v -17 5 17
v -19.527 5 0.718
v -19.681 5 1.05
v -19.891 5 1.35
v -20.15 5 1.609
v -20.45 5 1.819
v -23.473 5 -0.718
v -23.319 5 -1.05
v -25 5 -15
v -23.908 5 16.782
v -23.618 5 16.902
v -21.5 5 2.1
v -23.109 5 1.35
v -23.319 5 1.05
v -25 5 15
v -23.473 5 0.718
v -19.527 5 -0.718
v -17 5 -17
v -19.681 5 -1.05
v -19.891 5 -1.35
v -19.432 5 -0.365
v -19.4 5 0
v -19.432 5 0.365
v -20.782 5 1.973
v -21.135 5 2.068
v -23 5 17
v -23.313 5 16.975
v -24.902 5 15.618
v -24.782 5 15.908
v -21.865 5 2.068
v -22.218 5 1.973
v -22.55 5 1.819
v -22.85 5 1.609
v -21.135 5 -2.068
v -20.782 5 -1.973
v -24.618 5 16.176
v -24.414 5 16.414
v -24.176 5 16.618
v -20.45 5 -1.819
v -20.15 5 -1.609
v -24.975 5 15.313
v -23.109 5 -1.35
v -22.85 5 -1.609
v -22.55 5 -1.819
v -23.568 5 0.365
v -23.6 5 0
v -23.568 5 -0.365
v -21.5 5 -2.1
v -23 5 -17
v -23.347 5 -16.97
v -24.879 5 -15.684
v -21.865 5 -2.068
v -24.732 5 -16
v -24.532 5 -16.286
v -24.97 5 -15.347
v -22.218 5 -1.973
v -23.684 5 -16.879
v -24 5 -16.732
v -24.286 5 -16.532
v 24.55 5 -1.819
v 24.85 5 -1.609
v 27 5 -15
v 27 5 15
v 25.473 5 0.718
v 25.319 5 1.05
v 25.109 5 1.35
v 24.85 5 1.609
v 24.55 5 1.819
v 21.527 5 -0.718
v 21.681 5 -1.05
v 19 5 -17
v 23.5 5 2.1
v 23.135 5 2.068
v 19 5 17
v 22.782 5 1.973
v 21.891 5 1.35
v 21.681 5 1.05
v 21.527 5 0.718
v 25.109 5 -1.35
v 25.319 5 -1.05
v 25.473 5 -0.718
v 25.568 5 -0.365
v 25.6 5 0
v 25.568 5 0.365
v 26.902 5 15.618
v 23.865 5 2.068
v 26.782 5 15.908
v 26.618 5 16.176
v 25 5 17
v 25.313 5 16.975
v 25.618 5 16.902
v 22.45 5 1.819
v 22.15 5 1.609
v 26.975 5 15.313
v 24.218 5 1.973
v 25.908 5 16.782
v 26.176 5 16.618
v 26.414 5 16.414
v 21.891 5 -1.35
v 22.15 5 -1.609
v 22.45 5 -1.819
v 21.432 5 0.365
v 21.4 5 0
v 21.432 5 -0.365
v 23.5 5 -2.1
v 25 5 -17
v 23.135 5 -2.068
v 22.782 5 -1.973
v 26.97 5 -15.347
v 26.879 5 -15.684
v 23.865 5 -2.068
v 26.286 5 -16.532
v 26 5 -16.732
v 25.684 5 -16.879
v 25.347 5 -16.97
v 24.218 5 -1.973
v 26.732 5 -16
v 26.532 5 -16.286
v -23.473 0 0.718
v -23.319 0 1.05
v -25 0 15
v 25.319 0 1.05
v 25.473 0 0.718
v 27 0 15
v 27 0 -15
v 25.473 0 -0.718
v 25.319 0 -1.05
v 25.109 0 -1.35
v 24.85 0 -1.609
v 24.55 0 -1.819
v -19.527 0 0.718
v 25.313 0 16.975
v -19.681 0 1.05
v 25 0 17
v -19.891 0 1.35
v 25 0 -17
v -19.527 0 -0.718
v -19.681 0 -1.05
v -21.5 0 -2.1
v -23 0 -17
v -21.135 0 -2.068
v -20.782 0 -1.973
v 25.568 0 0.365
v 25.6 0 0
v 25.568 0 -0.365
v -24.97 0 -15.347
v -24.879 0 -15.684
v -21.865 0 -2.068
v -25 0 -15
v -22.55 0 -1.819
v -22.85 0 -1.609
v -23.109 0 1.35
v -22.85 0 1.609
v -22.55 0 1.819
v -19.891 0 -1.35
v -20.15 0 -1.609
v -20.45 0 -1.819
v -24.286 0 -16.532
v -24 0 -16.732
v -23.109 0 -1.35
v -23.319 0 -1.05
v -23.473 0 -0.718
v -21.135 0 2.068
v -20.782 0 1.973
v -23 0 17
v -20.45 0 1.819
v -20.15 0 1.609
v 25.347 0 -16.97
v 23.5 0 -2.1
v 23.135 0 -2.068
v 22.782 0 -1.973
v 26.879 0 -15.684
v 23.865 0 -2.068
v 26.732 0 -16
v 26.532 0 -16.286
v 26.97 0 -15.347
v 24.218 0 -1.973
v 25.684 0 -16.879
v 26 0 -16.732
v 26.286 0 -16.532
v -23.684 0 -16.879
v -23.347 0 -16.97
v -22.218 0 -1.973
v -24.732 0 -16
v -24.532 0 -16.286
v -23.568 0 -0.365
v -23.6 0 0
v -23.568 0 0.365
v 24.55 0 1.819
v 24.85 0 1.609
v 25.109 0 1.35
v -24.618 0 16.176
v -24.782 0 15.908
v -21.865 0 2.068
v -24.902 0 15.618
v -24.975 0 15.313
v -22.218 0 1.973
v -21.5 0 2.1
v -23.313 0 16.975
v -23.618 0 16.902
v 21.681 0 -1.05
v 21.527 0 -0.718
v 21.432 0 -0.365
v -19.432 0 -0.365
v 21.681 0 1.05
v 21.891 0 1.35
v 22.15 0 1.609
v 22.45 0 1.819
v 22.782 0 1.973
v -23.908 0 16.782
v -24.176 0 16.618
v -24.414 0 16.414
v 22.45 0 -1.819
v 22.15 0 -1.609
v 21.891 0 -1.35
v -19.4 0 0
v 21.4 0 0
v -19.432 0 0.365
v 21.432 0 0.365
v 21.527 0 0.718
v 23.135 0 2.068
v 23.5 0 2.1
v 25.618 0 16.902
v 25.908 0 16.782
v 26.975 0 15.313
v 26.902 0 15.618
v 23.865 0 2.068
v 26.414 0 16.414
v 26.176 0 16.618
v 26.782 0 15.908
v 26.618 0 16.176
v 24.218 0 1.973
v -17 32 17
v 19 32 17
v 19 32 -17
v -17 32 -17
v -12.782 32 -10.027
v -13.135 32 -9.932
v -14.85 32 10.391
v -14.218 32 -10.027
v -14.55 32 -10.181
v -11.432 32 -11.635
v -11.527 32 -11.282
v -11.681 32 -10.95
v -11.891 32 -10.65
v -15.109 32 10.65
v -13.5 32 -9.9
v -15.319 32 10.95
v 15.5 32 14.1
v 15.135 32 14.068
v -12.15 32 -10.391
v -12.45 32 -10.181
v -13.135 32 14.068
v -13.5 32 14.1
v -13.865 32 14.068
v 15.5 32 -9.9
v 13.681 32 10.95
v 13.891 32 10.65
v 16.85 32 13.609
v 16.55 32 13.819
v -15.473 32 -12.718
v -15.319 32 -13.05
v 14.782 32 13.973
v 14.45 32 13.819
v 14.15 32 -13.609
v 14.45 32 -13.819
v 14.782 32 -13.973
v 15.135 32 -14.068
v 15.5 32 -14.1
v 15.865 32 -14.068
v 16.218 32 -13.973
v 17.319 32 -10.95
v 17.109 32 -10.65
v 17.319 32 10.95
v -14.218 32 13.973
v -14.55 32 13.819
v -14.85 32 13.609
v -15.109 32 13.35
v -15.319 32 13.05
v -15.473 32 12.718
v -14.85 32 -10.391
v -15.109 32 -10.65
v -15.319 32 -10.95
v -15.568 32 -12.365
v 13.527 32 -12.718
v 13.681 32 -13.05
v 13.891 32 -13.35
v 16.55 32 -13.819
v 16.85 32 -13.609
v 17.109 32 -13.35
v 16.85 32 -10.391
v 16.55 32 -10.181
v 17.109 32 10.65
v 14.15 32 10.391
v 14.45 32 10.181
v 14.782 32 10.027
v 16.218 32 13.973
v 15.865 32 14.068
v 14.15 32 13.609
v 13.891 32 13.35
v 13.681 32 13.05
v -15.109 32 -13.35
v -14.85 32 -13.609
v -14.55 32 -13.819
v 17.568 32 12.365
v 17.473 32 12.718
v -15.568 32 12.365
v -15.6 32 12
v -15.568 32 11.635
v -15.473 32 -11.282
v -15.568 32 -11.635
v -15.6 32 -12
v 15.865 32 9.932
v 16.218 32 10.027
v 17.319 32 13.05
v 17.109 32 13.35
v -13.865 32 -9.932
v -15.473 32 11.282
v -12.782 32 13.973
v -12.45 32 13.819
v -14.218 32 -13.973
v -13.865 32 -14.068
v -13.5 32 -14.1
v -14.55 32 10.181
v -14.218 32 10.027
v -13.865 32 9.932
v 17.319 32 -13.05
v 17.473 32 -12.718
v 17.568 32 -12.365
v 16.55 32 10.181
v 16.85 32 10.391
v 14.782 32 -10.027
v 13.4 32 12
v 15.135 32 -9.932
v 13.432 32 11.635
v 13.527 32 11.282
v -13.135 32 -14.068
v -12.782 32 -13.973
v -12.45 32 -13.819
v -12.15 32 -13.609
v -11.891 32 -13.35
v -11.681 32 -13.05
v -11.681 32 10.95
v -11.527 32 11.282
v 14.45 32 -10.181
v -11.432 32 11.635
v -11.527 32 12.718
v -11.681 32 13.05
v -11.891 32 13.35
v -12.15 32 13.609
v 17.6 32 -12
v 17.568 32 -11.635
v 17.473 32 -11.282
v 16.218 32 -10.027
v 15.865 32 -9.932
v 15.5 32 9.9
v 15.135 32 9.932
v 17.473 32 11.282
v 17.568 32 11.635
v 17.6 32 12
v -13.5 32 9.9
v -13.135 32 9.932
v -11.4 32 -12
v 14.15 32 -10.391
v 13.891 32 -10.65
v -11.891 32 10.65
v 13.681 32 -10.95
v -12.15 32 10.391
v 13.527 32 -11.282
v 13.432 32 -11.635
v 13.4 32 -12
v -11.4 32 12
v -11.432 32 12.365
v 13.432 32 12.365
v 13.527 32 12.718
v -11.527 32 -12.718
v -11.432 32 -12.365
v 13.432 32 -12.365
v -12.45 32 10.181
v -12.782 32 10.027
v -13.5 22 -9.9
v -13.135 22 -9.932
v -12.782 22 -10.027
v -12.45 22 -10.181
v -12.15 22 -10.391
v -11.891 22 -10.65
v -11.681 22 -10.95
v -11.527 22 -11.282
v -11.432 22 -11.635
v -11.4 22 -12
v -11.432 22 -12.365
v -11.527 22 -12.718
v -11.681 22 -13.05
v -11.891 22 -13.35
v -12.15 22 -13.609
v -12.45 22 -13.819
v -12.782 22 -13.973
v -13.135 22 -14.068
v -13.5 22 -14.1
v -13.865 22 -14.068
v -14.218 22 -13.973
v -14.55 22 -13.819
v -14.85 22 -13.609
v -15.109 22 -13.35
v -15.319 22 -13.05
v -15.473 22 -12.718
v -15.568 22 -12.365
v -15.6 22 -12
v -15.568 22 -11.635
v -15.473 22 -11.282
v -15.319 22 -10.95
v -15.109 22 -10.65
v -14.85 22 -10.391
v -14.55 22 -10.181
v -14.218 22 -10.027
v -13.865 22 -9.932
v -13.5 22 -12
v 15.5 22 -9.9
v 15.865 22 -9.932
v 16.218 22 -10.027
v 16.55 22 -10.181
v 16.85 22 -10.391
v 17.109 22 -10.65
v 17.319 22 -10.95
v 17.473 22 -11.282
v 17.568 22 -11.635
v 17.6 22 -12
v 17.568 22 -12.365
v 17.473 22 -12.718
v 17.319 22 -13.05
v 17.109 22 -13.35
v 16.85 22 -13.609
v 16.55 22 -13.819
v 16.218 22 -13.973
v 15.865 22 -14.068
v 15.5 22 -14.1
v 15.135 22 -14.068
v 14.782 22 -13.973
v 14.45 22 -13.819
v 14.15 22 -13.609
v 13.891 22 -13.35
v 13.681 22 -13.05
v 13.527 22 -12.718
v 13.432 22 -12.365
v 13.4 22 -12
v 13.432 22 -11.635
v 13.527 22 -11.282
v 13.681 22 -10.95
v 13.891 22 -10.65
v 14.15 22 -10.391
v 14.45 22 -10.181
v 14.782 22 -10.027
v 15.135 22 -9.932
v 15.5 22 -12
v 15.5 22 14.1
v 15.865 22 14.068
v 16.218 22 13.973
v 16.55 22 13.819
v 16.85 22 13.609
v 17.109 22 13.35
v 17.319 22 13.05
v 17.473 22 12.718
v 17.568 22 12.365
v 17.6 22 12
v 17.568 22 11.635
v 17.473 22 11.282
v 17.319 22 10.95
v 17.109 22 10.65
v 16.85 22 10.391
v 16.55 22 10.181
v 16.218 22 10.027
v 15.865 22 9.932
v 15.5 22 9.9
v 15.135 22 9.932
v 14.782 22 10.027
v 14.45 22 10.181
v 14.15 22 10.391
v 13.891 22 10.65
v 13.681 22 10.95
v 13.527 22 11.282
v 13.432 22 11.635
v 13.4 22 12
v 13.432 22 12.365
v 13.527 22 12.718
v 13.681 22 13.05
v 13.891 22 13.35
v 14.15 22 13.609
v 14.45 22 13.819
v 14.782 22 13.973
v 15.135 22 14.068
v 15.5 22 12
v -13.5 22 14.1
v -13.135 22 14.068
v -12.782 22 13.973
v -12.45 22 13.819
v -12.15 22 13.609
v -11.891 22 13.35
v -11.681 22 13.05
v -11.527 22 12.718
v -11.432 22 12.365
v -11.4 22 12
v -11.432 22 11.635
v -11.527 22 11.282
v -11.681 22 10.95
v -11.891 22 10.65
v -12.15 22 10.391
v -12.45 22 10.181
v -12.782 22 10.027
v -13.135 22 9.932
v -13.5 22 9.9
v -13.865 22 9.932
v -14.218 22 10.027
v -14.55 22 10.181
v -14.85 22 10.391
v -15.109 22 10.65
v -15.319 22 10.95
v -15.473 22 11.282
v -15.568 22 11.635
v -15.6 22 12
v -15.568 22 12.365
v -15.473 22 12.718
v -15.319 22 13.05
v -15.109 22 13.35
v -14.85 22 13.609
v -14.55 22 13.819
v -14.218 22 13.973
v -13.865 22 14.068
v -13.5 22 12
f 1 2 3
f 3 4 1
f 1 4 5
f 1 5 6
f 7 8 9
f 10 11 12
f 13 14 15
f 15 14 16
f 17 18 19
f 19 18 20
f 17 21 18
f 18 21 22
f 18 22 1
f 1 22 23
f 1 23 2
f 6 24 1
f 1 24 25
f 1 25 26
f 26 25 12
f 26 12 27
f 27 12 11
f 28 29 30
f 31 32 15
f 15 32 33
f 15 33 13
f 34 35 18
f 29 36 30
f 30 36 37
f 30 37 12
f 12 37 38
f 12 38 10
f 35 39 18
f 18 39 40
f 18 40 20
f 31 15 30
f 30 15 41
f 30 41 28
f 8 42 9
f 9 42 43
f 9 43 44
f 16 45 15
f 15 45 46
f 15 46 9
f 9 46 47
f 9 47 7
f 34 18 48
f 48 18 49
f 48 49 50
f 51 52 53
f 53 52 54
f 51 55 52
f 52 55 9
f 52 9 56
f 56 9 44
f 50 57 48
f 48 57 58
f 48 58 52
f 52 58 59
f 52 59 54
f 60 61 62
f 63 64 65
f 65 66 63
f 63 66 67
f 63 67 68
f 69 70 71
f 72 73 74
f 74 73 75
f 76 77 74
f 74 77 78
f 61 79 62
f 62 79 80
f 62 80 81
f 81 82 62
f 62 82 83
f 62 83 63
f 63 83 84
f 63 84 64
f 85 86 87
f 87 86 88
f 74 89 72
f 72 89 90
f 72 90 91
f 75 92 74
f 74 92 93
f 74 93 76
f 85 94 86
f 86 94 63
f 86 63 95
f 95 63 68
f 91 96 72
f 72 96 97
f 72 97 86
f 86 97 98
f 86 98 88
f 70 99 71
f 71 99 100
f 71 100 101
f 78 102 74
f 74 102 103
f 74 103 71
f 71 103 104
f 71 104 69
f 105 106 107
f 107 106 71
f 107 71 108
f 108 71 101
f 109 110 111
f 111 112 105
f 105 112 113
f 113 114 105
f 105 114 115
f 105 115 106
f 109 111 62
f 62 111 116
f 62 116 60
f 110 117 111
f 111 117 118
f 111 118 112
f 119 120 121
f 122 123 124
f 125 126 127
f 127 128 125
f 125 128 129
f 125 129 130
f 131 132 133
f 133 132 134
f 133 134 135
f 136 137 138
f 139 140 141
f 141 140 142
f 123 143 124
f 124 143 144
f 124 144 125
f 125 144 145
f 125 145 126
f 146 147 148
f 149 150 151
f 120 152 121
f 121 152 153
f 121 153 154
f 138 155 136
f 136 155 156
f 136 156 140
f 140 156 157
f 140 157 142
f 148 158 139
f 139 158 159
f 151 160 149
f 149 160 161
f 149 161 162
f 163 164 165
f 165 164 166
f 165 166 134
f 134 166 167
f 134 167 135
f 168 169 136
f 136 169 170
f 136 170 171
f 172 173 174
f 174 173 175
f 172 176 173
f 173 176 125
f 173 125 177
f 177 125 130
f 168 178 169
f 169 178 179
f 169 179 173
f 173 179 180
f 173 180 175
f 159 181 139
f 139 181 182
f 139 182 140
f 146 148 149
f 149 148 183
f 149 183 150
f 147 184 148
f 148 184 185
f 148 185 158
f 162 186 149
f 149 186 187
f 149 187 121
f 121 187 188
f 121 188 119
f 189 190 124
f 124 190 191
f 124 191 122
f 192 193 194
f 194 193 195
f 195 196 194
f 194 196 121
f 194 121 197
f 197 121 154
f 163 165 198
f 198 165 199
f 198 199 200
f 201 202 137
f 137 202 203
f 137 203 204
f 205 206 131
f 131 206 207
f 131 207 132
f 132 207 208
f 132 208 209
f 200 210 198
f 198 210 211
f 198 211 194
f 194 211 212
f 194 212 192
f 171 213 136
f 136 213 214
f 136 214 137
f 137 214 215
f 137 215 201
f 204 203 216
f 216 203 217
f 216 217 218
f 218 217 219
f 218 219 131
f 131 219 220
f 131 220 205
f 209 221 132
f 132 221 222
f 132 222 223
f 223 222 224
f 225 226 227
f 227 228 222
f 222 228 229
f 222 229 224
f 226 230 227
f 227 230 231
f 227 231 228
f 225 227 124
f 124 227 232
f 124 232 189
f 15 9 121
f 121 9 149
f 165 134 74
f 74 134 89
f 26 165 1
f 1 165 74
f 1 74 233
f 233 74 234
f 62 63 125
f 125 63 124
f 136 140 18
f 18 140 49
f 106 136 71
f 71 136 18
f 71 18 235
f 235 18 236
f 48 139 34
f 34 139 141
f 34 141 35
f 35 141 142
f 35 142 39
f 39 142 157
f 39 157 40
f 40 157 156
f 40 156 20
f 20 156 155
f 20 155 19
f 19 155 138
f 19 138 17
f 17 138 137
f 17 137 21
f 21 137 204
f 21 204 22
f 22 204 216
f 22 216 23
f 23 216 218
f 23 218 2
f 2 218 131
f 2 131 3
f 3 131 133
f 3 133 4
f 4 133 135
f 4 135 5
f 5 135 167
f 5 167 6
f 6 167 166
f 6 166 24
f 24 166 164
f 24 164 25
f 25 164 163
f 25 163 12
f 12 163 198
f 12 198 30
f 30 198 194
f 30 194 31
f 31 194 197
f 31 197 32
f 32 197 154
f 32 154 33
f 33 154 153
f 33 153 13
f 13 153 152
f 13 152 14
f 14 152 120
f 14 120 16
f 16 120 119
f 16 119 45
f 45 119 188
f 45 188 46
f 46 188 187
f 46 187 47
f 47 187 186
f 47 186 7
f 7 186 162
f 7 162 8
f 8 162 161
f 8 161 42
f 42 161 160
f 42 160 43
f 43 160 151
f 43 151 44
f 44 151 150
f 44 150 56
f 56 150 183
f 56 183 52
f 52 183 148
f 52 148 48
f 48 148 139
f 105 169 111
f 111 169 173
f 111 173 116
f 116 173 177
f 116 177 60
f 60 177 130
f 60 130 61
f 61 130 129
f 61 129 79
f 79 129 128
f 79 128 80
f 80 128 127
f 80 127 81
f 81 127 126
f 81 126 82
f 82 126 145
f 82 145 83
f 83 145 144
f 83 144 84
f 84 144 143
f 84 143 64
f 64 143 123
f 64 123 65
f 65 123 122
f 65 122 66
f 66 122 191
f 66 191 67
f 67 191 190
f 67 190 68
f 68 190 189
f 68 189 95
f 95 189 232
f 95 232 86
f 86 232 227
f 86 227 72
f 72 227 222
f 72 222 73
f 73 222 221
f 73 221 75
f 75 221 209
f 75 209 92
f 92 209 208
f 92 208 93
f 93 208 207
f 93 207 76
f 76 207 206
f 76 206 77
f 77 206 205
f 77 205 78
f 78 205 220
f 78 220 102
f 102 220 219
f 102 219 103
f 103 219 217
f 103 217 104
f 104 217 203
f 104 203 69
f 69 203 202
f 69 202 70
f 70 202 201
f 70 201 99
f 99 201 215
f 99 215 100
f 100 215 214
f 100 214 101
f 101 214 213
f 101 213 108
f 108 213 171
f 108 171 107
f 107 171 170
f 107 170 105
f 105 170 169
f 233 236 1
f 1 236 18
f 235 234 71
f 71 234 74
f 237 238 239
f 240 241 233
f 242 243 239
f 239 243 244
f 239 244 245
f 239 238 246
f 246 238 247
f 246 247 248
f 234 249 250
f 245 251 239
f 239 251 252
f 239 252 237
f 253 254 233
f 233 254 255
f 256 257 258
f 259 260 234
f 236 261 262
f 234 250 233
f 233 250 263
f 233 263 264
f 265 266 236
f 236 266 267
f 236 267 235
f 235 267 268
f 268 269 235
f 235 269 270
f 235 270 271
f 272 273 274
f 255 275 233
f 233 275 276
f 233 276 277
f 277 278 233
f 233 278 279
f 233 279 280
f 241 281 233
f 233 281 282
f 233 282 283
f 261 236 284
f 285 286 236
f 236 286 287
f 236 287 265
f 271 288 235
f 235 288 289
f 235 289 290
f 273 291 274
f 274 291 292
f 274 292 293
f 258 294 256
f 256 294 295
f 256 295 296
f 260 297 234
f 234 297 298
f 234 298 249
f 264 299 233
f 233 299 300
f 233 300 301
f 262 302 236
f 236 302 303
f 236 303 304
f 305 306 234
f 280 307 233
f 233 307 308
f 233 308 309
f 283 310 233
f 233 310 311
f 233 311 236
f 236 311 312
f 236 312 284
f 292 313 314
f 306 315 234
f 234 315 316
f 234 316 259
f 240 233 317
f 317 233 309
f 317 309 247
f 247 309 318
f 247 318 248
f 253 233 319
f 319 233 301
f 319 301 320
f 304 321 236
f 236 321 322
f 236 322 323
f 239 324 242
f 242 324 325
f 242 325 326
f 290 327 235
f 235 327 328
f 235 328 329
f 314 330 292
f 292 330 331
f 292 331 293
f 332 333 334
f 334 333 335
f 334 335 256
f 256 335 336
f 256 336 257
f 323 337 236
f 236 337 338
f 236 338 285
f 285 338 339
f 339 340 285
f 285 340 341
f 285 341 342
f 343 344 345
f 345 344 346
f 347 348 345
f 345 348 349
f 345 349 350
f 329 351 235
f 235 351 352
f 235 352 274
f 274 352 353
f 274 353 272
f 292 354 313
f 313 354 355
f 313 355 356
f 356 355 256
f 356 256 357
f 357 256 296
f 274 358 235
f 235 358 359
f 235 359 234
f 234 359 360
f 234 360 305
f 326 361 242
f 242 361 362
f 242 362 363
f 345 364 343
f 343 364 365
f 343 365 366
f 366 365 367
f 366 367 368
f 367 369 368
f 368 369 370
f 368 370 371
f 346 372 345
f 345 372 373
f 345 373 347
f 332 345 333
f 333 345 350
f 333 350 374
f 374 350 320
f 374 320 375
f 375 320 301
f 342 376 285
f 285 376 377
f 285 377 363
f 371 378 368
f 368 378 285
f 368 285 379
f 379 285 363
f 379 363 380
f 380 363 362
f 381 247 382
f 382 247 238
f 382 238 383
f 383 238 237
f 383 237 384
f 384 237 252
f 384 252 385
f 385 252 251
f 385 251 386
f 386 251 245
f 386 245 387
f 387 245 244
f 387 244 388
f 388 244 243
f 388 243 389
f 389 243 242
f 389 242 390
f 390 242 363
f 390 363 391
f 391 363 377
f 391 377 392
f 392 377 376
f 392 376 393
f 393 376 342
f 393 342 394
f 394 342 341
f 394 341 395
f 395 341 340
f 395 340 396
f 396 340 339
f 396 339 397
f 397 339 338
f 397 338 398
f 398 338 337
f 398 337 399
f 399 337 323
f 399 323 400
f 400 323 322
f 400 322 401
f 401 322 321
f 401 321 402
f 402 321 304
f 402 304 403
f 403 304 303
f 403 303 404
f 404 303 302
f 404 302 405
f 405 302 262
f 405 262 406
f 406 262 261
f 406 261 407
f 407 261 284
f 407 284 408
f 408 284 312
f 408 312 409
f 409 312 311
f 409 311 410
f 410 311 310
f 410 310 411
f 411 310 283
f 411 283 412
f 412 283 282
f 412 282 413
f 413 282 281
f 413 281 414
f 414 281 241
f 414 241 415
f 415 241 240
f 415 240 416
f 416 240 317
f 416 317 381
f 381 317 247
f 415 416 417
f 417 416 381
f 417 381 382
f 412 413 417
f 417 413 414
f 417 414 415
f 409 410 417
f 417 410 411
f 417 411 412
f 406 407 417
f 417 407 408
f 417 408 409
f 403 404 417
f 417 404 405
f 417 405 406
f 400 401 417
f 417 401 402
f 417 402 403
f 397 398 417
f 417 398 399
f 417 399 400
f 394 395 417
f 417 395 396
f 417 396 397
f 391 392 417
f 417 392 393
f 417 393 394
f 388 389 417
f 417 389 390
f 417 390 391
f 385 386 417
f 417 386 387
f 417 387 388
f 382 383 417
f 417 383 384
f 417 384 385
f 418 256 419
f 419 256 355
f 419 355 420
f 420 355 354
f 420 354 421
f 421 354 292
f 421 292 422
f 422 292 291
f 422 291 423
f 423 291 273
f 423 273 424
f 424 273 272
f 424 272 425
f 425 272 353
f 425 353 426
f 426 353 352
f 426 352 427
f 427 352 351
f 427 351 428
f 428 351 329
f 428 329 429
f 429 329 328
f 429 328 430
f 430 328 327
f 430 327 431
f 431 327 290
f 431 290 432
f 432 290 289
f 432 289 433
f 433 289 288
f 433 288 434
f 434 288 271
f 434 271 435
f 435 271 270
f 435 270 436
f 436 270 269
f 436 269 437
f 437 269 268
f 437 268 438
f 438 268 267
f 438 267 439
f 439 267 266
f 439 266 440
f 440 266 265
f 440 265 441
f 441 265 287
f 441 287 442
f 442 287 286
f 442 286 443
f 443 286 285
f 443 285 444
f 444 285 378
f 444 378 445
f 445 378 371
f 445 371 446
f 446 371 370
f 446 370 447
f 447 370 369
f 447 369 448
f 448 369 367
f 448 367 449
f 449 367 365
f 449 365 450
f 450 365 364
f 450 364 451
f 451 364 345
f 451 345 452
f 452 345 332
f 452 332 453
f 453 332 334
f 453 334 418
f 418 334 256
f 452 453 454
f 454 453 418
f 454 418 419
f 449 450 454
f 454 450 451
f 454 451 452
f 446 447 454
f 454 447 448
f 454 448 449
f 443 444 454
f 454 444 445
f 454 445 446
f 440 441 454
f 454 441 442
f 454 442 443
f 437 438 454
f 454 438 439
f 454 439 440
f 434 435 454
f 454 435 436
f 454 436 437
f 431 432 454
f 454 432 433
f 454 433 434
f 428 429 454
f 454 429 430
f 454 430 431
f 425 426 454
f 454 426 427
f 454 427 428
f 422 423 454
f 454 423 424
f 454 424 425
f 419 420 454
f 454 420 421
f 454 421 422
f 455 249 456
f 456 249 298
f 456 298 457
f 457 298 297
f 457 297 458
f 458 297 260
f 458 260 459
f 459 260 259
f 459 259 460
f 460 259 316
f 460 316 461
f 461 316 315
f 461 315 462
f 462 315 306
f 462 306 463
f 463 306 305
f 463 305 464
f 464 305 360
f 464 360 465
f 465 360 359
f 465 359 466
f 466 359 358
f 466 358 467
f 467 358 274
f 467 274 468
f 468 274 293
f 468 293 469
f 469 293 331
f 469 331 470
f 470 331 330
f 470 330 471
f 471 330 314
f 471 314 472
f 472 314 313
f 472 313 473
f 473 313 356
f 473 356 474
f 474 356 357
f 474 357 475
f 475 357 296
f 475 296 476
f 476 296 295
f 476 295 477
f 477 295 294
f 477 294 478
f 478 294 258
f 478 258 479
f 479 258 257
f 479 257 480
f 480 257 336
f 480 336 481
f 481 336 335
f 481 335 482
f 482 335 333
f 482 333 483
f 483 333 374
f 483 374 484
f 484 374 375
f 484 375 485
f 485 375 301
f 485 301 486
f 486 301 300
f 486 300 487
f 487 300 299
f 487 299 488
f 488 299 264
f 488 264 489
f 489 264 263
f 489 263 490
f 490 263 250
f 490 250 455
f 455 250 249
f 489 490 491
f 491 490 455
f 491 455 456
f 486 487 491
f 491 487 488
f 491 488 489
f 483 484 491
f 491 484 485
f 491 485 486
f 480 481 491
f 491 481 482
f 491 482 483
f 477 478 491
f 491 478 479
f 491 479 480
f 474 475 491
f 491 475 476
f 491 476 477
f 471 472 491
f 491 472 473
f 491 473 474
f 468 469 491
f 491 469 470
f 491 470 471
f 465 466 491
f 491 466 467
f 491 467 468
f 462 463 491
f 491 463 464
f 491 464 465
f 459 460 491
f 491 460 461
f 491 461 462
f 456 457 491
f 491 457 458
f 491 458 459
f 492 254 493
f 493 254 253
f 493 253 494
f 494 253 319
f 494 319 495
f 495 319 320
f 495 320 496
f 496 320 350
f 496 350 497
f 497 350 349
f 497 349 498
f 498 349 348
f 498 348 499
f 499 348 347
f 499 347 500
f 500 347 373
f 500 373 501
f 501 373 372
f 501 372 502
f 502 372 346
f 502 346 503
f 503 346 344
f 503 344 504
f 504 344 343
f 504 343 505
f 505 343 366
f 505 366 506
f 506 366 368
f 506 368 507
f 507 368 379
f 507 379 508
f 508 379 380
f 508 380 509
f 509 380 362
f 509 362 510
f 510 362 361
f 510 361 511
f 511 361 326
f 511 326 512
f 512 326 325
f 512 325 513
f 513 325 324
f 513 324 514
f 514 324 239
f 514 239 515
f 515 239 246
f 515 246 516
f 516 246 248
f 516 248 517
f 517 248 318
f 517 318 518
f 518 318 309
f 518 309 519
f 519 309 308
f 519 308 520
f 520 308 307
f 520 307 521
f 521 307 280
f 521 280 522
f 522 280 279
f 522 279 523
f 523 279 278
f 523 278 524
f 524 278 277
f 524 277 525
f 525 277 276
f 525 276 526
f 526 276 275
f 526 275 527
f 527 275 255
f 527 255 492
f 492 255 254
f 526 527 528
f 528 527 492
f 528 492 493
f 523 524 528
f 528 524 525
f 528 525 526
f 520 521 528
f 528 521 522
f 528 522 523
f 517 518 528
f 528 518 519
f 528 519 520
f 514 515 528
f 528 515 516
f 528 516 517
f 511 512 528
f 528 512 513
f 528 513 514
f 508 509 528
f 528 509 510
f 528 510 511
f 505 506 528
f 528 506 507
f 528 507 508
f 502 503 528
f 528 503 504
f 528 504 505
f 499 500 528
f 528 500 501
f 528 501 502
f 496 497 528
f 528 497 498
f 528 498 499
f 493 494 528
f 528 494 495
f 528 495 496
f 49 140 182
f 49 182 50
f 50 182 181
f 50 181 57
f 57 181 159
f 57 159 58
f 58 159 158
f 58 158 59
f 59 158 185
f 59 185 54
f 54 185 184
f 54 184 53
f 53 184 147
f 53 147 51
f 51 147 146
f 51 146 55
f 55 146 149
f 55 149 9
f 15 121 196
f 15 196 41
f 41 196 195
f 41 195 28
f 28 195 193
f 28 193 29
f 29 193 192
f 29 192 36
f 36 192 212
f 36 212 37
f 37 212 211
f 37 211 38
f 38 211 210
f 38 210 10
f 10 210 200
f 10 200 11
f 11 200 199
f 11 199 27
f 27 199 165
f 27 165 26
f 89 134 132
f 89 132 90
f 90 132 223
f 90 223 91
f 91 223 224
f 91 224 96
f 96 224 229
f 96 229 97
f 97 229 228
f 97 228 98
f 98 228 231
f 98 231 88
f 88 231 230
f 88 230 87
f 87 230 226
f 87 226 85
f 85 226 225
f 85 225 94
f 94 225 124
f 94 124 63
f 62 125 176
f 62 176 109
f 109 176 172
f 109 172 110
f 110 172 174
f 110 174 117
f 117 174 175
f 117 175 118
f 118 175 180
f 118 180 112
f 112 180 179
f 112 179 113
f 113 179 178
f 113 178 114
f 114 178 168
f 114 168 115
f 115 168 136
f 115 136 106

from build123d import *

# Parameters (mm, degrees)
SKETCH_1_W          = 52
SKETCH_1_H          = 34
SKETCH_1_R          = 2.1
EXTRUDE_1_DEPTH     = 5
SKETCH_2_W          = 36
SKETCH_2_H          = 34
EXTRUDE_2_DEPTH     = 27
SKETCH_3_R          = 2.1
CUT_EXTRUDE_1_DEPTH = 10
FILLET_1_R          = 2
FILLET_2_R          = 2
FILLET_3_R          = 2
FILLET_4_R          = 2


with BuildPart() as part:
    # 草图1 → 凸台-拉伸1 (new body)
    with BuildSketch(Plane(origin=(0, 0, 0), x_dir=(1, 0, 0), z_dir=(0, 1, 0))):
        with Locations((1, 0)):
            Rectangle(SKETCH_1_W, SKETCH_1_H)
        with Locations(Location((-21.5, 0, 0), (0, 0, 270))):
            Circle(SKETCH_1_R, mode=Mode.SUBTRACT)
        with Locations(Location((23.5, 0, 0), (0, 0, 90))):
            Circle(SKETCH_1_R, mode=Mode.SUBTRACT)
    extrude(amount=EXTRUDE_1_DEPTH)

    # 草图2 → 凸台-拉伸2 (add)
    with BuildSketch(Plane(origin=(0, 5, 0), x_dir=(1, 0, 0), z_dir=(0, 1, 0))):
        with Locations((1, 0)):
            Rectangle(SKETCH_2_W, SKETCH_2_H)
    extrude(amount=EXTRUDE_2_DEPTH)

    # 草图3 → 切除-拉伸1 (cut)
    with BuildSketch(Plane(origin=(0, 32, 0), x_dir=(1, 0, 0), z_dir=(0, 1, 0))):
        with Locations(Location((-13.5, 12, 0), (0, 0, 270))):
            Circle(SKETCH_3_R)
        with Locations(Location((15.5, 12, 0), (0, 0, 270))):
            Circle(SKETCH_3_R)
        with Locations(Location((15.5, -12, 0), (0, 0, 270))):
            Circle(SKETCH_3_R)
        with Locations(Location((-13.5, -12, 0), (0, 0, 270))):
            Circle(SKETCH_3_R)
    extrude(amount=-CUT_EXTRUDE_1_DEPTH, mode=Mode.SUBTRACT)

    # 圆角1
    fillet_1_edges = [part.edges().sort_by_distance(p)[0] for p in [
        (-25, 2.5, -17),
    ]]
    fillet(fillet_1_edges, radius=FILLET_1_R)

    # 圆角2
    fillet_2_edges = [part.edges().sort_by_distance(p)[0] for p in [
        (-25, 2.5, 17),
    ]]
    fillet(fillet_2_edges, radius=FILLET_2_R)

    # 圆角3
    fillet_3_edges = [part.edges().sort_by_distance(p)[0] for p in [
        (27, 2.5, 17),
    ]]
    fillet(fillet_3_edges, radius=FILLET_3_R)

    # 圆角4
    fillet_4_edges = [part.edges().sort_by_distance(p)[0] for p in [
        (27, 2.5, -17),
    ]]
    fillet(fillet_4_edges, radius=FILLET_4_R)


solid = part.part
